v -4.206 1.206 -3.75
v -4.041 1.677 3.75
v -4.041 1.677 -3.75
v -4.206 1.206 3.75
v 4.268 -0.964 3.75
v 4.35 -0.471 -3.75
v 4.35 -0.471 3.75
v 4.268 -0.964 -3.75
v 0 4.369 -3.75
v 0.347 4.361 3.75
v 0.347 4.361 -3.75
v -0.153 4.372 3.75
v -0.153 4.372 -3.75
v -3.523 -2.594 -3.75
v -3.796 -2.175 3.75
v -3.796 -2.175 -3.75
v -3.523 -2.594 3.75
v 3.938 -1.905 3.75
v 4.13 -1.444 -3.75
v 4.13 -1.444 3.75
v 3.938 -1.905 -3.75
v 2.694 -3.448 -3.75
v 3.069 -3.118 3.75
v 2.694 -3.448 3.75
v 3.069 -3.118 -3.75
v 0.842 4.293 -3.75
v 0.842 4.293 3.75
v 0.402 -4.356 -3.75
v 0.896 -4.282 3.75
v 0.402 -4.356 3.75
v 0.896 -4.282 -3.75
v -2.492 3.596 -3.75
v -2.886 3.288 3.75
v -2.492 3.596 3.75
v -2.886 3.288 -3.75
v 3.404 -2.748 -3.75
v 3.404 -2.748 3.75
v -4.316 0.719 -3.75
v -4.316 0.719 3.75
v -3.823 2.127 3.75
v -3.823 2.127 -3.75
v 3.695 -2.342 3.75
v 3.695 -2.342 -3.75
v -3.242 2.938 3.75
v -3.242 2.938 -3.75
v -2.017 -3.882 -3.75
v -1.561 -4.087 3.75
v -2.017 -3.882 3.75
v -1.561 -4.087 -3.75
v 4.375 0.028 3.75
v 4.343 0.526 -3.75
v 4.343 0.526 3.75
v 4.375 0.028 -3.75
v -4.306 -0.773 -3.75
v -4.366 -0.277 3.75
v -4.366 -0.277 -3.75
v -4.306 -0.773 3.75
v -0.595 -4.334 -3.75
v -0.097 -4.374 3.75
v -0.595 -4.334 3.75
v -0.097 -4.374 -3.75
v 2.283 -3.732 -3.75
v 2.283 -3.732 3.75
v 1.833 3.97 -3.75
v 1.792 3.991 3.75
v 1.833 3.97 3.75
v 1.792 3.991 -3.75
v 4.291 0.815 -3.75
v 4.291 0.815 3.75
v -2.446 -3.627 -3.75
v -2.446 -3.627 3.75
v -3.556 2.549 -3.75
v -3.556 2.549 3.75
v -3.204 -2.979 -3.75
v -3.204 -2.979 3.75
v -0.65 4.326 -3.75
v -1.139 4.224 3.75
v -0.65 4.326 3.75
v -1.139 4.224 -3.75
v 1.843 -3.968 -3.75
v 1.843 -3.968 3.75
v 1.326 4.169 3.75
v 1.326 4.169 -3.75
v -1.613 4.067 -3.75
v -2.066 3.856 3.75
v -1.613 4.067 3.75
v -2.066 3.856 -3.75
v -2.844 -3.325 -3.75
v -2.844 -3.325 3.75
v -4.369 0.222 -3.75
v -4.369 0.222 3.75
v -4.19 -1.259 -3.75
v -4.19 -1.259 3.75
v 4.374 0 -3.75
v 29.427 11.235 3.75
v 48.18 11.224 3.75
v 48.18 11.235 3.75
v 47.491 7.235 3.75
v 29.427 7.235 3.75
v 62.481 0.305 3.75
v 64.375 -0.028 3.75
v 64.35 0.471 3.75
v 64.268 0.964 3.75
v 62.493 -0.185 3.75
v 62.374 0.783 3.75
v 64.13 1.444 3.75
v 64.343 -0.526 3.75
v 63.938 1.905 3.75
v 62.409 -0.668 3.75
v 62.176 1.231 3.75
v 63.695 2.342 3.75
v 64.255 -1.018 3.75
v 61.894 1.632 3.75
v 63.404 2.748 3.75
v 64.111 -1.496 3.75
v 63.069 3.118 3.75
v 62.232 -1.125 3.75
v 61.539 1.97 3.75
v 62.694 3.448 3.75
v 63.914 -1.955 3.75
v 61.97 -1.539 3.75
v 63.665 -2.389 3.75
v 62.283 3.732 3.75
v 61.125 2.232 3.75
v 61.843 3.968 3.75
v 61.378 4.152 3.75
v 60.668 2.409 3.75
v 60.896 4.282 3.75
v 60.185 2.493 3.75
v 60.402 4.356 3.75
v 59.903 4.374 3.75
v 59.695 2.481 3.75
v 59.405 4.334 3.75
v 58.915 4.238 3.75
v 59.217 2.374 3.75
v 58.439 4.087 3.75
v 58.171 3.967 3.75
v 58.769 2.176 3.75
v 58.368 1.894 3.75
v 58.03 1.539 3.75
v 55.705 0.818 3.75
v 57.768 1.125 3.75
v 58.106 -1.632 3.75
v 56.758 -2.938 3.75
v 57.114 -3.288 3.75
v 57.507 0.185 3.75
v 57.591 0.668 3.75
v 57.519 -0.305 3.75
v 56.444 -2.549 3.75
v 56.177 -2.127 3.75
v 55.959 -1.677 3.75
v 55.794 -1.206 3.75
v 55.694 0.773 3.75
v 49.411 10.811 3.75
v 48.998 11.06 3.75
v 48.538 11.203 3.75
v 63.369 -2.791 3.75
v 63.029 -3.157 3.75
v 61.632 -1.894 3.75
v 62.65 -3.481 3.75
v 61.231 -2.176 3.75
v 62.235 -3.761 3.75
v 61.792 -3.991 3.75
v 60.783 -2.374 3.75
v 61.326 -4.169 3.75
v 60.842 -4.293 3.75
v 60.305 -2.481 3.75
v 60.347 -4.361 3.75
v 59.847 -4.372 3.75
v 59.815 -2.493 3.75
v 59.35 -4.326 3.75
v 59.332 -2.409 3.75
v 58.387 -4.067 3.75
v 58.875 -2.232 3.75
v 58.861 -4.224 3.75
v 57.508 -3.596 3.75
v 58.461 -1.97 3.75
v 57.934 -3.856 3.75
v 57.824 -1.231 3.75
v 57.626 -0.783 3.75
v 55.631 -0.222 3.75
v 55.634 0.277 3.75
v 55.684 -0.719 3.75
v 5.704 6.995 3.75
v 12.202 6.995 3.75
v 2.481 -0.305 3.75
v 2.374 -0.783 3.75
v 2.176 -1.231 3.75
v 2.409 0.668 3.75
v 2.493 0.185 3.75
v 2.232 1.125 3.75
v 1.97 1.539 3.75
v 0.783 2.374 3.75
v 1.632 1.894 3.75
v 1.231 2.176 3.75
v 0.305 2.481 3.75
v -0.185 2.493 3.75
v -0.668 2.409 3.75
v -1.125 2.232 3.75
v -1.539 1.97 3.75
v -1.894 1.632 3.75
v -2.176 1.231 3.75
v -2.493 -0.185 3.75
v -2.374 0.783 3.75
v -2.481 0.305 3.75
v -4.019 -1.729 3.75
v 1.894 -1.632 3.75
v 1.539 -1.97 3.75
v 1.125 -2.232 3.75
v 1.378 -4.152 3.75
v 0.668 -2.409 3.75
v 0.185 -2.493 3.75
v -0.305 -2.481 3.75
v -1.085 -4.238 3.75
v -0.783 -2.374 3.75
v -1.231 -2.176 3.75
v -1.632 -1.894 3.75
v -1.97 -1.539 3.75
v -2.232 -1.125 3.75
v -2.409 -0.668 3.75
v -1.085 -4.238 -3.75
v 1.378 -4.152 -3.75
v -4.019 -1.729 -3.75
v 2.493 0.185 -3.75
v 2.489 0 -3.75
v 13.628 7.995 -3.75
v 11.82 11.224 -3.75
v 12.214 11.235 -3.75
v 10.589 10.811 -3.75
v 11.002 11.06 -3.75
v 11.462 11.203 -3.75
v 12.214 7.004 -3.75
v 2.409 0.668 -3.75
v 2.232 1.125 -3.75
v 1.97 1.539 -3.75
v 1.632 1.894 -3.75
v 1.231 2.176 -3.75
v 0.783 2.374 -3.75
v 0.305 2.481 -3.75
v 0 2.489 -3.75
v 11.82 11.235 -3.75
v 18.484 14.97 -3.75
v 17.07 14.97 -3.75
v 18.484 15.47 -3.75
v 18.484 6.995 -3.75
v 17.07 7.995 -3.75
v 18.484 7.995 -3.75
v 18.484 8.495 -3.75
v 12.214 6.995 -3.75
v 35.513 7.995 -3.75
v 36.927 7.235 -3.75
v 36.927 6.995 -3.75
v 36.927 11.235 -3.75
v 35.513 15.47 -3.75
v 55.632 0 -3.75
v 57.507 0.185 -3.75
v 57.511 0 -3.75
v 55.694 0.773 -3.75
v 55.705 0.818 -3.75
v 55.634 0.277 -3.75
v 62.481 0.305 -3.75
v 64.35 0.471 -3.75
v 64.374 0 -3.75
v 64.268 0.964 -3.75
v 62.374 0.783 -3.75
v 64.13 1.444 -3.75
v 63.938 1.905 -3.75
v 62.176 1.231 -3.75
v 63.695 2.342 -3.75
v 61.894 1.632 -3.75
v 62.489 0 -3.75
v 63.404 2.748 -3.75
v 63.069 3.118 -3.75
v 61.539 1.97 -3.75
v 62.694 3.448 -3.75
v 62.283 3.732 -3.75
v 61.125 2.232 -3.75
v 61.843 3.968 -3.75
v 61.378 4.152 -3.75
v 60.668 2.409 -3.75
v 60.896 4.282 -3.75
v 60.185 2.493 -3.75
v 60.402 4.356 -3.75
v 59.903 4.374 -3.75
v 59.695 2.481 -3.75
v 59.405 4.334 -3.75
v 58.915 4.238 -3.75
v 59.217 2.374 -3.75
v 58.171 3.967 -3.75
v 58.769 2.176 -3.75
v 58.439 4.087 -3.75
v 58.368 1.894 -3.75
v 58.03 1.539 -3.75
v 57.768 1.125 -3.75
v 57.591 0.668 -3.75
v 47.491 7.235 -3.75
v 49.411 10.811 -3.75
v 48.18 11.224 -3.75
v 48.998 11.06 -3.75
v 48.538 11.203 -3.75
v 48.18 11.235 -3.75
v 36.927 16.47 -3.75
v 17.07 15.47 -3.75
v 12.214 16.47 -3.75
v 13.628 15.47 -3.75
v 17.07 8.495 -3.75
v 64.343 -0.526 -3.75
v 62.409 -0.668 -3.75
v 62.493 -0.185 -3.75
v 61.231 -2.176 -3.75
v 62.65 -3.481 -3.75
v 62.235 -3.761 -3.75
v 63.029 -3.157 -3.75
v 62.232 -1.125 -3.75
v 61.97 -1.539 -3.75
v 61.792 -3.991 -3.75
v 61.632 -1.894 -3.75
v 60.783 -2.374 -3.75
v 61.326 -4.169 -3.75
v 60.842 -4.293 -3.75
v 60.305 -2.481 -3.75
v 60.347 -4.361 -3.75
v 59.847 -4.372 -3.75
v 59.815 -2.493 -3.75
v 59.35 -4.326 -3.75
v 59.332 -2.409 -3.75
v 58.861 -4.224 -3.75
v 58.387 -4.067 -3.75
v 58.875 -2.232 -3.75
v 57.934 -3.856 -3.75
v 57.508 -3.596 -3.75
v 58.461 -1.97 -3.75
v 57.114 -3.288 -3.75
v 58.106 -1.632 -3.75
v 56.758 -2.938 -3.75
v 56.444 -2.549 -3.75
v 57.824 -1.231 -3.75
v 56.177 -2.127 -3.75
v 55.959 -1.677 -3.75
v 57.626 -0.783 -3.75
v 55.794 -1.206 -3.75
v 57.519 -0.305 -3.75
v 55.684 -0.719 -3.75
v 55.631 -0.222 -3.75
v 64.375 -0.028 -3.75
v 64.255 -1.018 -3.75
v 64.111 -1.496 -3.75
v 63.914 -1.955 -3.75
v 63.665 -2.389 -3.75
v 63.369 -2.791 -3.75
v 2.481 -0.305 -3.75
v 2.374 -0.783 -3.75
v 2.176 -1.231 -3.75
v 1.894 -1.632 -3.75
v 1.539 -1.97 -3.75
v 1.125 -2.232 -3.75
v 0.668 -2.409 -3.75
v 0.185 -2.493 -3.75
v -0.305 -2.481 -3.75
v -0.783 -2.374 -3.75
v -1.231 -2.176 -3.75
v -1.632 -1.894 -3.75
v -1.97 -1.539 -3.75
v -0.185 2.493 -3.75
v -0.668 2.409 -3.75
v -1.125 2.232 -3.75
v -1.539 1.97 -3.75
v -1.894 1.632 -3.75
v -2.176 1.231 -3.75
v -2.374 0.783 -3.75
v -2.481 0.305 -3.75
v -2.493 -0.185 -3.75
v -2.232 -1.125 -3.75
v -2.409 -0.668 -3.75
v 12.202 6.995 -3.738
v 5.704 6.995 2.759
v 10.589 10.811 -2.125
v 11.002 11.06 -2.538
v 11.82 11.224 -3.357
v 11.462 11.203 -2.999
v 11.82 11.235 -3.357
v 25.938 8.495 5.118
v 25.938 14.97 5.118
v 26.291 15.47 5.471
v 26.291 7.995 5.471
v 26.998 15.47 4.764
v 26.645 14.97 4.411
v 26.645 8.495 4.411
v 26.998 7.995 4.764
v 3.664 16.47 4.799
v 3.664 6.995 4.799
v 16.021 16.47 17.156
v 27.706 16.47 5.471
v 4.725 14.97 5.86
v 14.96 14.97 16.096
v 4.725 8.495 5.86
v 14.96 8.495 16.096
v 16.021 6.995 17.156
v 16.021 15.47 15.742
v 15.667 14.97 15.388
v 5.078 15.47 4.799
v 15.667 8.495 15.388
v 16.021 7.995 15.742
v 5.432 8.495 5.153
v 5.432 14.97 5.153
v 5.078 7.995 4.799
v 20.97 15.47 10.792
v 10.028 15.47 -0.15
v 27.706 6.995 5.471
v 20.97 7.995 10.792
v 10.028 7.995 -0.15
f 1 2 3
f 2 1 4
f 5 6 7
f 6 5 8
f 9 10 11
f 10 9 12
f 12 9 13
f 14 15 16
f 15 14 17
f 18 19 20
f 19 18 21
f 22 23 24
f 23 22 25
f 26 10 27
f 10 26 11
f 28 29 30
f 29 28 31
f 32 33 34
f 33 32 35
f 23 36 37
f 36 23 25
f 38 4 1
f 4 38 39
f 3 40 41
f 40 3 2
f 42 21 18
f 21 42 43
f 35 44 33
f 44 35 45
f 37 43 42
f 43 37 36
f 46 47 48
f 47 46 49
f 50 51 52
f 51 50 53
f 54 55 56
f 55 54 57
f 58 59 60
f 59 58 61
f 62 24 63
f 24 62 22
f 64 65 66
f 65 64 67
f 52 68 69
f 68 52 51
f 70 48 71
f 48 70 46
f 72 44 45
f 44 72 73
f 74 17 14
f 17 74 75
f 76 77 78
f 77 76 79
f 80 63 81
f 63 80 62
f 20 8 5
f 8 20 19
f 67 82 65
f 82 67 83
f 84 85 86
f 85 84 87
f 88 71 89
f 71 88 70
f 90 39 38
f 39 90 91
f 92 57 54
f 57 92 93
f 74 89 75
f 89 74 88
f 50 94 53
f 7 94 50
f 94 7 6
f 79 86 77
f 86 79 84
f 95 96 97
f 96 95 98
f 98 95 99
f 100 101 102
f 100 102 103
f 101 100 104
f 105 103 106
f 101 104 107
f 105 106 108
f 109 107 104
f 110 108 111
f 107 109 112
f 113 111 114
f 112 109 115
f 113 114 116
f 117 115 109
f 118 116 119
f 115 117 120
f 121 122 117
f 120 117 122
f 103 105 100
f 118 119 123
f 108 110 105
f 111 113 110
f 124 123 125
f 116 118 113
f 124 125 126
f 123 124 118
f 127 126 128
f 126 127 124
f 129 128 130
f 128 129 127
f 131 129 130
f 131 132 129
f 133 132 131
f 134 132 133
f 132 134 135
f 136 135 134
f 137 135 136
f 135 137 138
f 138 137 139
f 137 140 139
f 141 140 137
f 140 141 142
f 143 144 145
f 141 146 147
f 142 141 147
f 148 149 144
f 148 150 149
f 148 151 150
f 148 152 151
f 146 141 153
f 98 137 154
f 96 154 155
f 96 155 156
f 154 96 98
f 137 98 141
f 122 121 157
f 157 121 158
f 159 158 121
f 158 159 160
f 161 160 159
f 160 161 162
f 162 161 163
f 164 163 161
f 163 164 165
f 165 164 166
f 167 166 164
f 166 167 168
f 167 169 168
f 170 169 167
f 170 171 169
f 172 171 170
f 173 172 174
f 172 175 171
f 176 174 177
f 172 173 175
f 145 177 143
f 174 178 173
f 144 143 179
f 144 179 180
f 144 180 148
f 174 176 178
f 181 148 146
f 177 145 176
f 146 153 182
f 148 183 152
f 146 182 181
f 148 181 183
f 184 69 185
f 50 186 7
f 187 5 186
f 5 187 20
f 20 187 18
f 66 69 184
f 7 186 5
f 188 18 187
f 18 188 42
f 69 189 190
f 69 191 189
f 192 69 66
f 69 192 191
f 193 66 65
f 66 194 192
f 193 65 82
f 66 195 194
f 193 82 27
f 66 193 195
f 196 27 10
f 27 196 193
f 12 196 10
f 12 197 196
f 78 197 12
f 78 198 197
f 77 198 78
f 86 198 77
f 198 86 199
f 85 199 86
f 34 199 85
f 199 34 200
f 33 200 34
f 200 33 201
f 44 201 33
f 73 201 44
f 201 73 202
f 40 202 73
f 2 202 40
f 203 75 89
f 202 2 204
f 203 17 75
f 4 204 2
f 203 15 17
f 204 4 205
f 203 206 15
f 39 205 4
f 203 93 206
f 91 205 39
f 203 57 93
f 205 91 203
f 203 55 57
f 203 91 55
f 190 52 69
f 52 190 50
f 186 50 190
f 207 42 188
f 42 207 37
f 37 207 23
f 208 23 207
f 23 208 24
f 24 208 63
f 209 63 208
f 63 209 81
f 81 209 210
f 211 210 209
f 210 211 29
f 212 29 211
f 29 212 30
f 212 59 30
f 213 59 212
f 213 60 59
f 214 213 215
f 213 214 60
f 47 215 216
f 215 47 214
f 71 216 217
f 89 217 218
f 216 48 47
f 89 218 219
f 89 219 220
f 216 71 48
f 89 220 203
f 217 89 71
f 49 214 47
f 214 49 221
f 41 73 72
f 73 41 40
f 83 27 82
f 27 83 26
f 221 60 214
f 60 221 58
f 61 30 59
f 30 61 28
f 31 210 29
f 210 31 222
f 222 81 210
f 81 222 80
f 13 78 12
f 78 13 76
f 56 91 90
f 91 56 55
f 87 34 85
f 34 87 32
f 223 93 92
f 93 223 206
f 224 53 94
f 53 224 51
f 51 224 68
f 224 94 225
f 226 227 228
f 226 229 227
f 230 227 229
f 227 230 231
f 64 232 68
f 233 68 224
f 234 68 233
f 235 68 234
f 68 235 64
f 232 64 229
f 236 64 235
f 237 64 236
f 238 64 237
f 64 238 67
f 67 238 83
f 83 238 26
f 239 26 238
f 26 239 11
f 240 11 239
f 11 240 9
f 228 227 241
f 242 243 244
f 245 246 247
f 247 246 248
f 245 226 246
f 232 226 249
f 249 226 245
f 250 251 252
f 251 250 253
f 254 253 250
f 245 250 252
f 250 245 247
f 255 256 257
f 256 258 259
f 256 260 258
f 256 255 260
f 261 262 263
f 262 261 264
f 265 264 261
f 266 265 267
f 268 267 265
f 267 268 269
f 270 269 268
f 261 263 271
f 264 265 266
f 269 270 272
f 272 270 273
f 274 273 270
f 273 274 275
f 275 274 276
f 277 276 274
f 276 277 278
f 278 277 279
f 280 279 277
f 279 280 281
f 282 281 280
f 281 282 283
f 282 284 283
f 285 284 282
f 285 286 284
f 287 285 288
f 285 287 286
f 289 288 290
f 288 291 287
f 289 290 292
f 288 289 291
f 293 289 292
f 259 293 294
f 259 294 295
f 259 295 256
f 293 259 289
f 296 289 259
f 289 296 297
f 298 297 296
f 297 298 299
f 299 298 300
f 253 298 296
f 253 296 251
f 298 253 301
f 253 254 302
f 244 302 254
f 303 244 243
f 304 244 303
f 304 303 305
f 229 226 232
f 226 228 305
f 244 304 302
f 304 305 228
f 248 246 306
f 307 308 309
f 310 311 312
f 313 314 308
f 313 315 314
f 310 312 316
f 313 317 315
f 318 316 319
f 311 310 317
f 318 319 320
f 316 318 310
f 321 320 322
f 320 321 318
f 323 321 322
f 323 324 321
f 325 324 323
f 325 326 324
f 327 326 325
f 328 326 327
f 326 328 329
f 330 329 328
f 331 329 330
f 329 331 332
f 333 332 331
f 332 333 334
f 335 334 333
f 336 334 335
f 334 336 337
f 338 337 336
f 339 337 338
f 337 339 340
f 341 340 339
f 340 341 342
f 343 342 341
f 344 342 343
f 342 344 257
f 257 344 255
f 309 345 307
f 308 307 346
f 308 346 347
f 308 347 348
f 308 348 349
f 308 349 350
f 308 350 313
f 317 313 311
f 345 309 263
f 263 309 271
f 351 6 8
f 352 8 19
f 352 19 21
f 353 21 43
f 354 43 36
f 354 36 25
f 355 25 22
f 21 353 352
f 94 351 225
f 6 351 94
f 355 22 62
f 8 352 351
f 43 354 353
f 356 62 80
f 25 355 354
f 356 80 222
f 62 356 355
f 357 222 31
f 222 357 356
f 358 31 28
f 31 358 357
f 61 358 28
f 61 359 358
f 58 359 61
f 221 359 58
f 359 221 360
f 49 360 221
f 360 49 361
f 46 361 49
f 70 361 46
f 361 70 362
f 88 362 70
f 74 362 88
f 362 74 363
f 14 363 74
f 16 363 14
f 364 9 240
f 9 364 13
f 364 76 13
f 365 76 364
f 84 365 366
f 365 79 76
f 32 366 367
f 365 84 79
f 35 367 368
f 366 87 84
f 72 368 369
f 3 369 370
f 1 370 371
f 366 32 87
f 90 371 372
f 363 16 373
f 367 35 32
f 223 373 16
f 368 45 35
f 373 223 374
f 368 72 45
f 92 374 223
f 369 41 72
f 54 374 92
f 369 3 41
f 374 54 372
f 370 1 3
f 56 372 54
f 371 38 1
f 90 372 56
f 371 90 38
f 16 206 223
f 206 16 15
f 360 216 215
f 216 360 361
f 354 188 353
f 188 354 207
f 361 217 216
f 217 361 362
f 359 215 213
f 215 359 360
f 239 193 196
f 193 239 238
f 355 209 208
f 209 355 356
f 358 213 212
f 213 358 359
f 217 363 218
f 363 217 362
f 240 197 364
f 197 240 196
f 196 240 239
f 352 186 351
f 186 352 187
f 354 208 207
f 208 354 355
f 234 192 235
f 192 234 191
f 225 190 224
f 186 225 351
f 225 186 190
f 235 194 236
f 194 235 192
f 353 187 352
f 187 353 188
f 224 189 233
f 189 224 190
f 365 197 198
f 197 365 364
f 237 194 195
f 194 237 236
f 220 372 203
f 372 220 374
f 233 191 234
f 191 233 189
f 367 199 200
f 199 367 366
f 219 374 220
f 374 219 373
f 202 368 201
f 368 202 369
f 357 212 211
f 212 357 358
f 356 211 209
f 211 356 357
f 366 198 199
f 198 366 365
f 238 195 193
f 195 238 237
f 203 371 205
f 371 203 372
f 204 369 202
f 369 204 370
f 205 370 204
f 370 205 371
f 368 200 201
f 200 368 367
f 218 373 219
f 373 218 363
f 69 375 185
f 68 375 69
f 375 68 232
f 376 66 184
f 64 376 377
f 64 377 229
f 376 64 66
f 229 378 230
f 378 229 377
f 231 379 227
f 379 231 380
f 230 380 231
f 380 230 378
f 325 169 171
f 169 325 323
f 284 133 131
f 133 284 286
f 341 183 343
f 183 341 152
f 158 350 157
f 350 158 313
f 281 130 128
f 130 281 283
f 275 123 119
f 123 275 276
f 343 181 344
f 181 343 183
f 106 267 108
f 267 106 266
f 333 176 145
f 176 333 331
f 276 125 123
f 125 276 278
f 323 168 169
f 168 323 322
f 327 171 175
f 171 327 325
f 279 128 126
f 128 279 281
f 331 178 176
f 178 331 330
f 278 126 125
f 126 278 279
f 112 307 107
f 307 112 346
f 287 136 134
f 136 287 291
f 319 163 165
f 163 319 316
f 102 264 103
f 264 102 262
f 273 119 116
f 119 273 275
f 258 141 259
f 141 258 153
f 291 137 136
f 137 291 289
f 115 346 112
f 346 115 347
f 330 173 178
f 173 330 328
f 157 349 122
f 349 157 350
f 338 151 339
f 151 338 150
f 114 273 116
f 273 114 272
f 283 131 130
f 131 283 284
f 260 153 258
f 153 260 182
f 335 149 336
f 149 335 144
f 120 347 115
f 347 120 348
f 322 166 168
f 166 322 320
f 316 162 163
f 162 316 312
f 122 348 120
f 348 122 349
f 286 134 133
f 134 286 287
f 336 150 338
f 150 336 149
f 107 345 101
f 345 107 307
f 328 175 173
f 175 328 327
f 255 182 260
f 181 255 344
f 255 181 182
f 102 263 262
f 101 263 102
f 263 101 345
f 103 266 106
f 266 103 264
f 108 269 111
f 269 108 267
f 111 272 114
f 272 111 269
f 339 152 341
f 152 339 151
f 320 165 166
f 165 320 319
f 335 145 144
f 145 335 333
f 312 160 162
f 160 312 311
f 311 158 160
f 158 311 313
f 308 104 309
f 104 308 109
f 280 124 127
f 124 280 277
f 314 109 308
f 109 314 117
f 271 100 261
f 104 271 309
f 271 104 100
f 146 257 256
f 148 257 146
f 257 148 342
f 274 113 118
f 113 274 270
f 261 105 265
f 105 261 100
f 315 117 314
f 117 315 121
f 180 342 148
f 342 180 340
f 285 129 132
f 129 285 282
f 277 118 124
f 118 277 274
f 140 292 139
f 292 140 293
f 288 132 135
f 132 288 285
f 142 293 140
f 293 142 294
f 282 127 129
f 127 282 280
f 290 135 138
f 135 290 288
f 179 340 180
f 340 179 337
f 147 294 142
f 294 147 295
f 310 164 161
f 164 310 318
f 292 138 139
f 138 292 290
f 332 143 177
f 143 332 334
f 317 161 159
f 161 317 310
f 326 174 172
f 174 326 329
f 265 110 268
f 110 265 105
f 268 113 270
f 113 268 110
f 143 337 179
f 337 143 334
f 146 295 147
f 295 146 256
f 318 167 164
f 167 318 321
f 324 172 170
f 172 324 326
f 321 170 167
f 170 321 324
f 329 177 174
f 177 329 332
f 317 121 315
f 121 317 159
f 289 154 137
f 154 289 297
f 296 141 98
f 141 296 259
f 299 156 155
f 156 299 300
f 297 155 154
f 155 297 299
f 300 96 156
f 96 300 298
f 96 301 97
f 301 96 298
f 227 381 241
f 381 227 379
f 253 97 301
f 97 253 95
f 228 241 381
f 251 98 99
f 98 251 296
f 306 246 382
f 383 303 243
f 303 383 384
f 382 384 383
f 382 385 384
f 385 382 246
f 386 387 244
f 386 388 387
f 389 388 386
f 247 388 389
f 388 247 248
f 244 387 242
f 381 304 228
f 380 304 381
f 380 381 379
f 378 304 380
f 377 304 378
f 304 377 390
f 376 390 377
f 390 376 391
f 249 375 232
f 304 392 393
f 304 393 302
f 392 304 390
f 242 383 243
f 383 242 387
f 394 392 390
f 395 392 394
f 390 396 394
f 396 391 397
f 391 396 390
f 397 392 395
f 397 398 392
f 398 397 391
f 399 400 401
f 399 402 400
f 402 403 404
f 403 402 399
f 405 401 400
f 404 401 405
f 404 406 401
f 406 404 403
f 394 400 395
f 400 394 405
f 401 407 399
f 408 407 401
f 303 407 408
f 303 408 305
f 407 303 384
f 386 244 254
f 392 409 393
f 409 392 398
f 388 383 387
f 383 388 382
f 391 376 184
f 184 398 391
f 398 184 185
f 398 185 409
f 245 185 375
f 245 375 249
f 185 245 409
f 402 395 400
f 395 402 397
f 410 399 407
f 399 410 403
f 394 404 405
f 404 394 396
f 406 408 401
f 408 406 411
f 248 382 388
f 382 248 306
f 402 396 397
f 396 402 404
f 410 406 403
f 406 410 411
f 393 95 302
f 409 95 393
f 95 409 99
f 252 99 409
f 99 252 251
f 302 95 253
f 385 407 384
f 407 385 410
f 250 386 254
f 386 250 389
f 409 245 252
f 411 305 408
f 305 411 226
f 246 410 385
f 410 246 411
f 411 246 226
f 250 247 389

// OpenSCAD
// file: bracket.scad
standoff_spacing = 60;
standoff_width = 5;
standoff_height = standoff_width * 1.5;

arm_angle = 38;
arm_length = 15;
arm_height = standoff_height;
arm_width = standoff_width / 5 * 4;

xt60_bracket_thickness = 1;

arm_deg = 90 - arm_angle;
bridge_length = standoff_spacing - (cos(arm_angle) * arm_length) * 2;

$fs = $preview ? 1 : 0.5;
$fa = $preview ? 10 : 5;

anti_warp = .15;
filament_width = 1.75;

function anti_warp_widen(v) = v + (filament_width * anti_warp) * 2;
function anti_warp_shrink(v) = v - (filament_width * anti_warp) * 2;

module joint(height, diameter) {
	assert(height > 0 && diameter > 0, "invalid args");
	cylinder(h = height, d = diameter, center = true);
}

module standoff_hole(height, diameter) {
	joint(height, diameter);
}


module standoff() {
	difference() {
		standoff_hole(standoff_height, standoff_width * 1.75);
		standoff_hole(standoff_height, standoff_width);
	}
}

module standoff_arm() {
	standoff();
	difference() {
		translate([0, arm_length / 2]) cube([arm_width, arm_length, arm_height], center = true);
		standoff_hole(standoff_height, standoff_width);
	}
	translate([0, arm_length]) joint(arm_height, arm_width);
}

module xt60_bracket(gen_claws = true) {
	xt60_height = anti_warp_widen(15);
	xt60_length = anti_warp_shrink(16);
	xt60_width = anti_warp_shrink(8);
	xt60_stub_width = 0.5;

	translate([-(xt60_bracket_thickness + xt60_length / 2), 0]) {
		cube([xt60_length + xt60_bracket_thickness * 2, xt60_bracket_thickness, xt60_height]);
		if (gen_claws) {
			 translate([0, -xt60_stub_width, -xt60_bracket_thickness]) cube([xt60_length + xt60_bracket_thickness * 2, xt60_stub_width + xt60_bracket_thickness, xt60_bracket_thickness]);
			 translate([0, -xt60_stub_width, -xt60_bracket_thickness + xt60_height]) cube([xt60_length + xt60_bracket_thickness * 2, xt60_stub_width + xt60_bracket_thickness, xt60_bracket_thickness]);
		}
	}

	translate([xt60_length / 2, -(xt60_width + xt60_bracket_thickness)]) {
		cube([xt60_bracket_thickness, xt60_width + xt60_bracket_thickness * 2, xt60_height]);
		if (gen_claws) {
			translate([-xt60_stub_width, 0, -xt60_bracket_thickness]) cube([xt60_stub_width + xt60_bracket_thickness, xt60_width + xt60_bracket_thickness * 2, xt60_bracket_thickness]);
			translate([-xt60_stub_width, 0, -xt60_bracket_thickness + xt60_height]) cube([xt60_stub_width + xt60_bracket_thickness, xt60_width + xt60_bracket_thickness * 2, xt60_bracket_thickness]);
		}
	}

	translate([-(xt60_length / 2 + xt60_bracket_thickness), -(xt60_width + xt60_bracket_thickness)]) {
		cube([xt60_bracket_thickness, xt60_width + xt60_bracket_thickness * 2, xt60_height]);
		if (gen_claws) {
			translate([0, 0, -xt60_bracket_thickness]) cube([xt60_stub_width + xt60_bracket_thickness, xt60_width + xt60_bracket_thickness * 2, xt60_bracket_thickness]);
			translate([0, 0, -xt60_bracket_thickness + xt60_height]) cube([xt60_stub_width + xt60_bracket_thickness, xt60_width + xt60_bracket_thickness * 2, xt60_bracket_thickness]);
		}
	}

	translate([-(xt60_length / 2 + xt60_bracket_thickness), -(xt60_width + xt60_bracket_thickness)]) {
		cube([xt60_length + xt60_bracket_thickness * 2, xt60_bracket_thickness, xt60_height]);
		if (gen_claws) {
			translate([0, 0, -xt60_bracket_thickness]) cube([xt60_length + xt60_bracket_thickness * 2, xt60_stub_width + xt60_bracket_thickness, xt60_bracket_thickness]);
			translate([0, 0, -xt60_bracket_thickness + xt60_height]) cube([xt60_length + xt60_bracket_thickness * 2, xt60_stub_width + xt60_bracket_thickness, xt60_bracket_thickness]);
		}
	}
}

module bridge() {
	translate([bridge_length / 2, 0]) cube([bridge_length, arm_width, arm_height], center = true);
}

module bracket() {
	rotate([0, 0, -arm_deg]) standoff_arm();
	translate([standoff_spacing, 0]) rotate([0, 0, arm_deg]) standoff_arm();
	translate([cos(arm_angle) * arm_length, sin(arm_angle) * arm_length]) bridge();
}
// file: xt60_holder_variable_deg.scad
include <bracket.scad>

xt60_angle = 45;
xt60_offset_x = 2;
xt60_offset_y = -3;
xt60_offset_z = arm_height / 4;
xt60_mirrored = false;

xt60_deg = 90 - xt60_angle;

module main() {
	difference() {
		bracket();
		translate([cos(arm_angle) * arm_length + arm_width + xt60_offset_x,
			sin(arm_angle) * arm_length * 2 + xt60_offset_y,
			 -arm_height / 2 + xt60_offset_z]) {
			rotate([0, xt60_deg]) hull() {
				scale([1, 1, 3]) translate([0, 0, arm_width]) hull() xt60_bracket(false);
				scale([1, 1, -3]) translate([0, 0, -arm_width * 2]) hull() xt60_bracket(false);
			}
		}
	}

	translate([cos(arm_angle) * arm_length + arm_width + xt60_offset_x,
		sin(arm_angle) * arm_length * 2 + xt60_offset_y,
		-arm_height / 2 + xt60_offset_z]) { 

		rotate([0, xt60_deg + (xt60_mirrored ? 180 : 0)]) {
			xt60_bracket();
			translate([0, 0, -arm_width * 2]) xt60_bracket(false);
		}
	}

	difference() {
		translate([cos(arm_angle) * arm_length + arm_width + xt60_offset_x,
			sin(arm_angle) * arm_length * 2 + xt60_offset_y,
			-arm_height / 2 + xt60_offset_z]) rotate([0, xt60_deg]) scale([1, 1, 2]) translate([0, 0, arm_width]) xt60_bracket(false);
		translate([0, 0, arm_height / 2]) cube([100, 100, 100]);
	}
		
}

difference() {
	main();
	translate([0, 0, -arm_height / 2]) rotate([270, 0]) cube([100, 100, 100]);
}
// main file
include <xt60_holder_variable_deg.scad>

xt60_angle = -45;
xt60_offset_x = 5;
xt60_offset_y = -3;
xt60_offset_z = arm_height / 2;
xt60_mirrored = true;
